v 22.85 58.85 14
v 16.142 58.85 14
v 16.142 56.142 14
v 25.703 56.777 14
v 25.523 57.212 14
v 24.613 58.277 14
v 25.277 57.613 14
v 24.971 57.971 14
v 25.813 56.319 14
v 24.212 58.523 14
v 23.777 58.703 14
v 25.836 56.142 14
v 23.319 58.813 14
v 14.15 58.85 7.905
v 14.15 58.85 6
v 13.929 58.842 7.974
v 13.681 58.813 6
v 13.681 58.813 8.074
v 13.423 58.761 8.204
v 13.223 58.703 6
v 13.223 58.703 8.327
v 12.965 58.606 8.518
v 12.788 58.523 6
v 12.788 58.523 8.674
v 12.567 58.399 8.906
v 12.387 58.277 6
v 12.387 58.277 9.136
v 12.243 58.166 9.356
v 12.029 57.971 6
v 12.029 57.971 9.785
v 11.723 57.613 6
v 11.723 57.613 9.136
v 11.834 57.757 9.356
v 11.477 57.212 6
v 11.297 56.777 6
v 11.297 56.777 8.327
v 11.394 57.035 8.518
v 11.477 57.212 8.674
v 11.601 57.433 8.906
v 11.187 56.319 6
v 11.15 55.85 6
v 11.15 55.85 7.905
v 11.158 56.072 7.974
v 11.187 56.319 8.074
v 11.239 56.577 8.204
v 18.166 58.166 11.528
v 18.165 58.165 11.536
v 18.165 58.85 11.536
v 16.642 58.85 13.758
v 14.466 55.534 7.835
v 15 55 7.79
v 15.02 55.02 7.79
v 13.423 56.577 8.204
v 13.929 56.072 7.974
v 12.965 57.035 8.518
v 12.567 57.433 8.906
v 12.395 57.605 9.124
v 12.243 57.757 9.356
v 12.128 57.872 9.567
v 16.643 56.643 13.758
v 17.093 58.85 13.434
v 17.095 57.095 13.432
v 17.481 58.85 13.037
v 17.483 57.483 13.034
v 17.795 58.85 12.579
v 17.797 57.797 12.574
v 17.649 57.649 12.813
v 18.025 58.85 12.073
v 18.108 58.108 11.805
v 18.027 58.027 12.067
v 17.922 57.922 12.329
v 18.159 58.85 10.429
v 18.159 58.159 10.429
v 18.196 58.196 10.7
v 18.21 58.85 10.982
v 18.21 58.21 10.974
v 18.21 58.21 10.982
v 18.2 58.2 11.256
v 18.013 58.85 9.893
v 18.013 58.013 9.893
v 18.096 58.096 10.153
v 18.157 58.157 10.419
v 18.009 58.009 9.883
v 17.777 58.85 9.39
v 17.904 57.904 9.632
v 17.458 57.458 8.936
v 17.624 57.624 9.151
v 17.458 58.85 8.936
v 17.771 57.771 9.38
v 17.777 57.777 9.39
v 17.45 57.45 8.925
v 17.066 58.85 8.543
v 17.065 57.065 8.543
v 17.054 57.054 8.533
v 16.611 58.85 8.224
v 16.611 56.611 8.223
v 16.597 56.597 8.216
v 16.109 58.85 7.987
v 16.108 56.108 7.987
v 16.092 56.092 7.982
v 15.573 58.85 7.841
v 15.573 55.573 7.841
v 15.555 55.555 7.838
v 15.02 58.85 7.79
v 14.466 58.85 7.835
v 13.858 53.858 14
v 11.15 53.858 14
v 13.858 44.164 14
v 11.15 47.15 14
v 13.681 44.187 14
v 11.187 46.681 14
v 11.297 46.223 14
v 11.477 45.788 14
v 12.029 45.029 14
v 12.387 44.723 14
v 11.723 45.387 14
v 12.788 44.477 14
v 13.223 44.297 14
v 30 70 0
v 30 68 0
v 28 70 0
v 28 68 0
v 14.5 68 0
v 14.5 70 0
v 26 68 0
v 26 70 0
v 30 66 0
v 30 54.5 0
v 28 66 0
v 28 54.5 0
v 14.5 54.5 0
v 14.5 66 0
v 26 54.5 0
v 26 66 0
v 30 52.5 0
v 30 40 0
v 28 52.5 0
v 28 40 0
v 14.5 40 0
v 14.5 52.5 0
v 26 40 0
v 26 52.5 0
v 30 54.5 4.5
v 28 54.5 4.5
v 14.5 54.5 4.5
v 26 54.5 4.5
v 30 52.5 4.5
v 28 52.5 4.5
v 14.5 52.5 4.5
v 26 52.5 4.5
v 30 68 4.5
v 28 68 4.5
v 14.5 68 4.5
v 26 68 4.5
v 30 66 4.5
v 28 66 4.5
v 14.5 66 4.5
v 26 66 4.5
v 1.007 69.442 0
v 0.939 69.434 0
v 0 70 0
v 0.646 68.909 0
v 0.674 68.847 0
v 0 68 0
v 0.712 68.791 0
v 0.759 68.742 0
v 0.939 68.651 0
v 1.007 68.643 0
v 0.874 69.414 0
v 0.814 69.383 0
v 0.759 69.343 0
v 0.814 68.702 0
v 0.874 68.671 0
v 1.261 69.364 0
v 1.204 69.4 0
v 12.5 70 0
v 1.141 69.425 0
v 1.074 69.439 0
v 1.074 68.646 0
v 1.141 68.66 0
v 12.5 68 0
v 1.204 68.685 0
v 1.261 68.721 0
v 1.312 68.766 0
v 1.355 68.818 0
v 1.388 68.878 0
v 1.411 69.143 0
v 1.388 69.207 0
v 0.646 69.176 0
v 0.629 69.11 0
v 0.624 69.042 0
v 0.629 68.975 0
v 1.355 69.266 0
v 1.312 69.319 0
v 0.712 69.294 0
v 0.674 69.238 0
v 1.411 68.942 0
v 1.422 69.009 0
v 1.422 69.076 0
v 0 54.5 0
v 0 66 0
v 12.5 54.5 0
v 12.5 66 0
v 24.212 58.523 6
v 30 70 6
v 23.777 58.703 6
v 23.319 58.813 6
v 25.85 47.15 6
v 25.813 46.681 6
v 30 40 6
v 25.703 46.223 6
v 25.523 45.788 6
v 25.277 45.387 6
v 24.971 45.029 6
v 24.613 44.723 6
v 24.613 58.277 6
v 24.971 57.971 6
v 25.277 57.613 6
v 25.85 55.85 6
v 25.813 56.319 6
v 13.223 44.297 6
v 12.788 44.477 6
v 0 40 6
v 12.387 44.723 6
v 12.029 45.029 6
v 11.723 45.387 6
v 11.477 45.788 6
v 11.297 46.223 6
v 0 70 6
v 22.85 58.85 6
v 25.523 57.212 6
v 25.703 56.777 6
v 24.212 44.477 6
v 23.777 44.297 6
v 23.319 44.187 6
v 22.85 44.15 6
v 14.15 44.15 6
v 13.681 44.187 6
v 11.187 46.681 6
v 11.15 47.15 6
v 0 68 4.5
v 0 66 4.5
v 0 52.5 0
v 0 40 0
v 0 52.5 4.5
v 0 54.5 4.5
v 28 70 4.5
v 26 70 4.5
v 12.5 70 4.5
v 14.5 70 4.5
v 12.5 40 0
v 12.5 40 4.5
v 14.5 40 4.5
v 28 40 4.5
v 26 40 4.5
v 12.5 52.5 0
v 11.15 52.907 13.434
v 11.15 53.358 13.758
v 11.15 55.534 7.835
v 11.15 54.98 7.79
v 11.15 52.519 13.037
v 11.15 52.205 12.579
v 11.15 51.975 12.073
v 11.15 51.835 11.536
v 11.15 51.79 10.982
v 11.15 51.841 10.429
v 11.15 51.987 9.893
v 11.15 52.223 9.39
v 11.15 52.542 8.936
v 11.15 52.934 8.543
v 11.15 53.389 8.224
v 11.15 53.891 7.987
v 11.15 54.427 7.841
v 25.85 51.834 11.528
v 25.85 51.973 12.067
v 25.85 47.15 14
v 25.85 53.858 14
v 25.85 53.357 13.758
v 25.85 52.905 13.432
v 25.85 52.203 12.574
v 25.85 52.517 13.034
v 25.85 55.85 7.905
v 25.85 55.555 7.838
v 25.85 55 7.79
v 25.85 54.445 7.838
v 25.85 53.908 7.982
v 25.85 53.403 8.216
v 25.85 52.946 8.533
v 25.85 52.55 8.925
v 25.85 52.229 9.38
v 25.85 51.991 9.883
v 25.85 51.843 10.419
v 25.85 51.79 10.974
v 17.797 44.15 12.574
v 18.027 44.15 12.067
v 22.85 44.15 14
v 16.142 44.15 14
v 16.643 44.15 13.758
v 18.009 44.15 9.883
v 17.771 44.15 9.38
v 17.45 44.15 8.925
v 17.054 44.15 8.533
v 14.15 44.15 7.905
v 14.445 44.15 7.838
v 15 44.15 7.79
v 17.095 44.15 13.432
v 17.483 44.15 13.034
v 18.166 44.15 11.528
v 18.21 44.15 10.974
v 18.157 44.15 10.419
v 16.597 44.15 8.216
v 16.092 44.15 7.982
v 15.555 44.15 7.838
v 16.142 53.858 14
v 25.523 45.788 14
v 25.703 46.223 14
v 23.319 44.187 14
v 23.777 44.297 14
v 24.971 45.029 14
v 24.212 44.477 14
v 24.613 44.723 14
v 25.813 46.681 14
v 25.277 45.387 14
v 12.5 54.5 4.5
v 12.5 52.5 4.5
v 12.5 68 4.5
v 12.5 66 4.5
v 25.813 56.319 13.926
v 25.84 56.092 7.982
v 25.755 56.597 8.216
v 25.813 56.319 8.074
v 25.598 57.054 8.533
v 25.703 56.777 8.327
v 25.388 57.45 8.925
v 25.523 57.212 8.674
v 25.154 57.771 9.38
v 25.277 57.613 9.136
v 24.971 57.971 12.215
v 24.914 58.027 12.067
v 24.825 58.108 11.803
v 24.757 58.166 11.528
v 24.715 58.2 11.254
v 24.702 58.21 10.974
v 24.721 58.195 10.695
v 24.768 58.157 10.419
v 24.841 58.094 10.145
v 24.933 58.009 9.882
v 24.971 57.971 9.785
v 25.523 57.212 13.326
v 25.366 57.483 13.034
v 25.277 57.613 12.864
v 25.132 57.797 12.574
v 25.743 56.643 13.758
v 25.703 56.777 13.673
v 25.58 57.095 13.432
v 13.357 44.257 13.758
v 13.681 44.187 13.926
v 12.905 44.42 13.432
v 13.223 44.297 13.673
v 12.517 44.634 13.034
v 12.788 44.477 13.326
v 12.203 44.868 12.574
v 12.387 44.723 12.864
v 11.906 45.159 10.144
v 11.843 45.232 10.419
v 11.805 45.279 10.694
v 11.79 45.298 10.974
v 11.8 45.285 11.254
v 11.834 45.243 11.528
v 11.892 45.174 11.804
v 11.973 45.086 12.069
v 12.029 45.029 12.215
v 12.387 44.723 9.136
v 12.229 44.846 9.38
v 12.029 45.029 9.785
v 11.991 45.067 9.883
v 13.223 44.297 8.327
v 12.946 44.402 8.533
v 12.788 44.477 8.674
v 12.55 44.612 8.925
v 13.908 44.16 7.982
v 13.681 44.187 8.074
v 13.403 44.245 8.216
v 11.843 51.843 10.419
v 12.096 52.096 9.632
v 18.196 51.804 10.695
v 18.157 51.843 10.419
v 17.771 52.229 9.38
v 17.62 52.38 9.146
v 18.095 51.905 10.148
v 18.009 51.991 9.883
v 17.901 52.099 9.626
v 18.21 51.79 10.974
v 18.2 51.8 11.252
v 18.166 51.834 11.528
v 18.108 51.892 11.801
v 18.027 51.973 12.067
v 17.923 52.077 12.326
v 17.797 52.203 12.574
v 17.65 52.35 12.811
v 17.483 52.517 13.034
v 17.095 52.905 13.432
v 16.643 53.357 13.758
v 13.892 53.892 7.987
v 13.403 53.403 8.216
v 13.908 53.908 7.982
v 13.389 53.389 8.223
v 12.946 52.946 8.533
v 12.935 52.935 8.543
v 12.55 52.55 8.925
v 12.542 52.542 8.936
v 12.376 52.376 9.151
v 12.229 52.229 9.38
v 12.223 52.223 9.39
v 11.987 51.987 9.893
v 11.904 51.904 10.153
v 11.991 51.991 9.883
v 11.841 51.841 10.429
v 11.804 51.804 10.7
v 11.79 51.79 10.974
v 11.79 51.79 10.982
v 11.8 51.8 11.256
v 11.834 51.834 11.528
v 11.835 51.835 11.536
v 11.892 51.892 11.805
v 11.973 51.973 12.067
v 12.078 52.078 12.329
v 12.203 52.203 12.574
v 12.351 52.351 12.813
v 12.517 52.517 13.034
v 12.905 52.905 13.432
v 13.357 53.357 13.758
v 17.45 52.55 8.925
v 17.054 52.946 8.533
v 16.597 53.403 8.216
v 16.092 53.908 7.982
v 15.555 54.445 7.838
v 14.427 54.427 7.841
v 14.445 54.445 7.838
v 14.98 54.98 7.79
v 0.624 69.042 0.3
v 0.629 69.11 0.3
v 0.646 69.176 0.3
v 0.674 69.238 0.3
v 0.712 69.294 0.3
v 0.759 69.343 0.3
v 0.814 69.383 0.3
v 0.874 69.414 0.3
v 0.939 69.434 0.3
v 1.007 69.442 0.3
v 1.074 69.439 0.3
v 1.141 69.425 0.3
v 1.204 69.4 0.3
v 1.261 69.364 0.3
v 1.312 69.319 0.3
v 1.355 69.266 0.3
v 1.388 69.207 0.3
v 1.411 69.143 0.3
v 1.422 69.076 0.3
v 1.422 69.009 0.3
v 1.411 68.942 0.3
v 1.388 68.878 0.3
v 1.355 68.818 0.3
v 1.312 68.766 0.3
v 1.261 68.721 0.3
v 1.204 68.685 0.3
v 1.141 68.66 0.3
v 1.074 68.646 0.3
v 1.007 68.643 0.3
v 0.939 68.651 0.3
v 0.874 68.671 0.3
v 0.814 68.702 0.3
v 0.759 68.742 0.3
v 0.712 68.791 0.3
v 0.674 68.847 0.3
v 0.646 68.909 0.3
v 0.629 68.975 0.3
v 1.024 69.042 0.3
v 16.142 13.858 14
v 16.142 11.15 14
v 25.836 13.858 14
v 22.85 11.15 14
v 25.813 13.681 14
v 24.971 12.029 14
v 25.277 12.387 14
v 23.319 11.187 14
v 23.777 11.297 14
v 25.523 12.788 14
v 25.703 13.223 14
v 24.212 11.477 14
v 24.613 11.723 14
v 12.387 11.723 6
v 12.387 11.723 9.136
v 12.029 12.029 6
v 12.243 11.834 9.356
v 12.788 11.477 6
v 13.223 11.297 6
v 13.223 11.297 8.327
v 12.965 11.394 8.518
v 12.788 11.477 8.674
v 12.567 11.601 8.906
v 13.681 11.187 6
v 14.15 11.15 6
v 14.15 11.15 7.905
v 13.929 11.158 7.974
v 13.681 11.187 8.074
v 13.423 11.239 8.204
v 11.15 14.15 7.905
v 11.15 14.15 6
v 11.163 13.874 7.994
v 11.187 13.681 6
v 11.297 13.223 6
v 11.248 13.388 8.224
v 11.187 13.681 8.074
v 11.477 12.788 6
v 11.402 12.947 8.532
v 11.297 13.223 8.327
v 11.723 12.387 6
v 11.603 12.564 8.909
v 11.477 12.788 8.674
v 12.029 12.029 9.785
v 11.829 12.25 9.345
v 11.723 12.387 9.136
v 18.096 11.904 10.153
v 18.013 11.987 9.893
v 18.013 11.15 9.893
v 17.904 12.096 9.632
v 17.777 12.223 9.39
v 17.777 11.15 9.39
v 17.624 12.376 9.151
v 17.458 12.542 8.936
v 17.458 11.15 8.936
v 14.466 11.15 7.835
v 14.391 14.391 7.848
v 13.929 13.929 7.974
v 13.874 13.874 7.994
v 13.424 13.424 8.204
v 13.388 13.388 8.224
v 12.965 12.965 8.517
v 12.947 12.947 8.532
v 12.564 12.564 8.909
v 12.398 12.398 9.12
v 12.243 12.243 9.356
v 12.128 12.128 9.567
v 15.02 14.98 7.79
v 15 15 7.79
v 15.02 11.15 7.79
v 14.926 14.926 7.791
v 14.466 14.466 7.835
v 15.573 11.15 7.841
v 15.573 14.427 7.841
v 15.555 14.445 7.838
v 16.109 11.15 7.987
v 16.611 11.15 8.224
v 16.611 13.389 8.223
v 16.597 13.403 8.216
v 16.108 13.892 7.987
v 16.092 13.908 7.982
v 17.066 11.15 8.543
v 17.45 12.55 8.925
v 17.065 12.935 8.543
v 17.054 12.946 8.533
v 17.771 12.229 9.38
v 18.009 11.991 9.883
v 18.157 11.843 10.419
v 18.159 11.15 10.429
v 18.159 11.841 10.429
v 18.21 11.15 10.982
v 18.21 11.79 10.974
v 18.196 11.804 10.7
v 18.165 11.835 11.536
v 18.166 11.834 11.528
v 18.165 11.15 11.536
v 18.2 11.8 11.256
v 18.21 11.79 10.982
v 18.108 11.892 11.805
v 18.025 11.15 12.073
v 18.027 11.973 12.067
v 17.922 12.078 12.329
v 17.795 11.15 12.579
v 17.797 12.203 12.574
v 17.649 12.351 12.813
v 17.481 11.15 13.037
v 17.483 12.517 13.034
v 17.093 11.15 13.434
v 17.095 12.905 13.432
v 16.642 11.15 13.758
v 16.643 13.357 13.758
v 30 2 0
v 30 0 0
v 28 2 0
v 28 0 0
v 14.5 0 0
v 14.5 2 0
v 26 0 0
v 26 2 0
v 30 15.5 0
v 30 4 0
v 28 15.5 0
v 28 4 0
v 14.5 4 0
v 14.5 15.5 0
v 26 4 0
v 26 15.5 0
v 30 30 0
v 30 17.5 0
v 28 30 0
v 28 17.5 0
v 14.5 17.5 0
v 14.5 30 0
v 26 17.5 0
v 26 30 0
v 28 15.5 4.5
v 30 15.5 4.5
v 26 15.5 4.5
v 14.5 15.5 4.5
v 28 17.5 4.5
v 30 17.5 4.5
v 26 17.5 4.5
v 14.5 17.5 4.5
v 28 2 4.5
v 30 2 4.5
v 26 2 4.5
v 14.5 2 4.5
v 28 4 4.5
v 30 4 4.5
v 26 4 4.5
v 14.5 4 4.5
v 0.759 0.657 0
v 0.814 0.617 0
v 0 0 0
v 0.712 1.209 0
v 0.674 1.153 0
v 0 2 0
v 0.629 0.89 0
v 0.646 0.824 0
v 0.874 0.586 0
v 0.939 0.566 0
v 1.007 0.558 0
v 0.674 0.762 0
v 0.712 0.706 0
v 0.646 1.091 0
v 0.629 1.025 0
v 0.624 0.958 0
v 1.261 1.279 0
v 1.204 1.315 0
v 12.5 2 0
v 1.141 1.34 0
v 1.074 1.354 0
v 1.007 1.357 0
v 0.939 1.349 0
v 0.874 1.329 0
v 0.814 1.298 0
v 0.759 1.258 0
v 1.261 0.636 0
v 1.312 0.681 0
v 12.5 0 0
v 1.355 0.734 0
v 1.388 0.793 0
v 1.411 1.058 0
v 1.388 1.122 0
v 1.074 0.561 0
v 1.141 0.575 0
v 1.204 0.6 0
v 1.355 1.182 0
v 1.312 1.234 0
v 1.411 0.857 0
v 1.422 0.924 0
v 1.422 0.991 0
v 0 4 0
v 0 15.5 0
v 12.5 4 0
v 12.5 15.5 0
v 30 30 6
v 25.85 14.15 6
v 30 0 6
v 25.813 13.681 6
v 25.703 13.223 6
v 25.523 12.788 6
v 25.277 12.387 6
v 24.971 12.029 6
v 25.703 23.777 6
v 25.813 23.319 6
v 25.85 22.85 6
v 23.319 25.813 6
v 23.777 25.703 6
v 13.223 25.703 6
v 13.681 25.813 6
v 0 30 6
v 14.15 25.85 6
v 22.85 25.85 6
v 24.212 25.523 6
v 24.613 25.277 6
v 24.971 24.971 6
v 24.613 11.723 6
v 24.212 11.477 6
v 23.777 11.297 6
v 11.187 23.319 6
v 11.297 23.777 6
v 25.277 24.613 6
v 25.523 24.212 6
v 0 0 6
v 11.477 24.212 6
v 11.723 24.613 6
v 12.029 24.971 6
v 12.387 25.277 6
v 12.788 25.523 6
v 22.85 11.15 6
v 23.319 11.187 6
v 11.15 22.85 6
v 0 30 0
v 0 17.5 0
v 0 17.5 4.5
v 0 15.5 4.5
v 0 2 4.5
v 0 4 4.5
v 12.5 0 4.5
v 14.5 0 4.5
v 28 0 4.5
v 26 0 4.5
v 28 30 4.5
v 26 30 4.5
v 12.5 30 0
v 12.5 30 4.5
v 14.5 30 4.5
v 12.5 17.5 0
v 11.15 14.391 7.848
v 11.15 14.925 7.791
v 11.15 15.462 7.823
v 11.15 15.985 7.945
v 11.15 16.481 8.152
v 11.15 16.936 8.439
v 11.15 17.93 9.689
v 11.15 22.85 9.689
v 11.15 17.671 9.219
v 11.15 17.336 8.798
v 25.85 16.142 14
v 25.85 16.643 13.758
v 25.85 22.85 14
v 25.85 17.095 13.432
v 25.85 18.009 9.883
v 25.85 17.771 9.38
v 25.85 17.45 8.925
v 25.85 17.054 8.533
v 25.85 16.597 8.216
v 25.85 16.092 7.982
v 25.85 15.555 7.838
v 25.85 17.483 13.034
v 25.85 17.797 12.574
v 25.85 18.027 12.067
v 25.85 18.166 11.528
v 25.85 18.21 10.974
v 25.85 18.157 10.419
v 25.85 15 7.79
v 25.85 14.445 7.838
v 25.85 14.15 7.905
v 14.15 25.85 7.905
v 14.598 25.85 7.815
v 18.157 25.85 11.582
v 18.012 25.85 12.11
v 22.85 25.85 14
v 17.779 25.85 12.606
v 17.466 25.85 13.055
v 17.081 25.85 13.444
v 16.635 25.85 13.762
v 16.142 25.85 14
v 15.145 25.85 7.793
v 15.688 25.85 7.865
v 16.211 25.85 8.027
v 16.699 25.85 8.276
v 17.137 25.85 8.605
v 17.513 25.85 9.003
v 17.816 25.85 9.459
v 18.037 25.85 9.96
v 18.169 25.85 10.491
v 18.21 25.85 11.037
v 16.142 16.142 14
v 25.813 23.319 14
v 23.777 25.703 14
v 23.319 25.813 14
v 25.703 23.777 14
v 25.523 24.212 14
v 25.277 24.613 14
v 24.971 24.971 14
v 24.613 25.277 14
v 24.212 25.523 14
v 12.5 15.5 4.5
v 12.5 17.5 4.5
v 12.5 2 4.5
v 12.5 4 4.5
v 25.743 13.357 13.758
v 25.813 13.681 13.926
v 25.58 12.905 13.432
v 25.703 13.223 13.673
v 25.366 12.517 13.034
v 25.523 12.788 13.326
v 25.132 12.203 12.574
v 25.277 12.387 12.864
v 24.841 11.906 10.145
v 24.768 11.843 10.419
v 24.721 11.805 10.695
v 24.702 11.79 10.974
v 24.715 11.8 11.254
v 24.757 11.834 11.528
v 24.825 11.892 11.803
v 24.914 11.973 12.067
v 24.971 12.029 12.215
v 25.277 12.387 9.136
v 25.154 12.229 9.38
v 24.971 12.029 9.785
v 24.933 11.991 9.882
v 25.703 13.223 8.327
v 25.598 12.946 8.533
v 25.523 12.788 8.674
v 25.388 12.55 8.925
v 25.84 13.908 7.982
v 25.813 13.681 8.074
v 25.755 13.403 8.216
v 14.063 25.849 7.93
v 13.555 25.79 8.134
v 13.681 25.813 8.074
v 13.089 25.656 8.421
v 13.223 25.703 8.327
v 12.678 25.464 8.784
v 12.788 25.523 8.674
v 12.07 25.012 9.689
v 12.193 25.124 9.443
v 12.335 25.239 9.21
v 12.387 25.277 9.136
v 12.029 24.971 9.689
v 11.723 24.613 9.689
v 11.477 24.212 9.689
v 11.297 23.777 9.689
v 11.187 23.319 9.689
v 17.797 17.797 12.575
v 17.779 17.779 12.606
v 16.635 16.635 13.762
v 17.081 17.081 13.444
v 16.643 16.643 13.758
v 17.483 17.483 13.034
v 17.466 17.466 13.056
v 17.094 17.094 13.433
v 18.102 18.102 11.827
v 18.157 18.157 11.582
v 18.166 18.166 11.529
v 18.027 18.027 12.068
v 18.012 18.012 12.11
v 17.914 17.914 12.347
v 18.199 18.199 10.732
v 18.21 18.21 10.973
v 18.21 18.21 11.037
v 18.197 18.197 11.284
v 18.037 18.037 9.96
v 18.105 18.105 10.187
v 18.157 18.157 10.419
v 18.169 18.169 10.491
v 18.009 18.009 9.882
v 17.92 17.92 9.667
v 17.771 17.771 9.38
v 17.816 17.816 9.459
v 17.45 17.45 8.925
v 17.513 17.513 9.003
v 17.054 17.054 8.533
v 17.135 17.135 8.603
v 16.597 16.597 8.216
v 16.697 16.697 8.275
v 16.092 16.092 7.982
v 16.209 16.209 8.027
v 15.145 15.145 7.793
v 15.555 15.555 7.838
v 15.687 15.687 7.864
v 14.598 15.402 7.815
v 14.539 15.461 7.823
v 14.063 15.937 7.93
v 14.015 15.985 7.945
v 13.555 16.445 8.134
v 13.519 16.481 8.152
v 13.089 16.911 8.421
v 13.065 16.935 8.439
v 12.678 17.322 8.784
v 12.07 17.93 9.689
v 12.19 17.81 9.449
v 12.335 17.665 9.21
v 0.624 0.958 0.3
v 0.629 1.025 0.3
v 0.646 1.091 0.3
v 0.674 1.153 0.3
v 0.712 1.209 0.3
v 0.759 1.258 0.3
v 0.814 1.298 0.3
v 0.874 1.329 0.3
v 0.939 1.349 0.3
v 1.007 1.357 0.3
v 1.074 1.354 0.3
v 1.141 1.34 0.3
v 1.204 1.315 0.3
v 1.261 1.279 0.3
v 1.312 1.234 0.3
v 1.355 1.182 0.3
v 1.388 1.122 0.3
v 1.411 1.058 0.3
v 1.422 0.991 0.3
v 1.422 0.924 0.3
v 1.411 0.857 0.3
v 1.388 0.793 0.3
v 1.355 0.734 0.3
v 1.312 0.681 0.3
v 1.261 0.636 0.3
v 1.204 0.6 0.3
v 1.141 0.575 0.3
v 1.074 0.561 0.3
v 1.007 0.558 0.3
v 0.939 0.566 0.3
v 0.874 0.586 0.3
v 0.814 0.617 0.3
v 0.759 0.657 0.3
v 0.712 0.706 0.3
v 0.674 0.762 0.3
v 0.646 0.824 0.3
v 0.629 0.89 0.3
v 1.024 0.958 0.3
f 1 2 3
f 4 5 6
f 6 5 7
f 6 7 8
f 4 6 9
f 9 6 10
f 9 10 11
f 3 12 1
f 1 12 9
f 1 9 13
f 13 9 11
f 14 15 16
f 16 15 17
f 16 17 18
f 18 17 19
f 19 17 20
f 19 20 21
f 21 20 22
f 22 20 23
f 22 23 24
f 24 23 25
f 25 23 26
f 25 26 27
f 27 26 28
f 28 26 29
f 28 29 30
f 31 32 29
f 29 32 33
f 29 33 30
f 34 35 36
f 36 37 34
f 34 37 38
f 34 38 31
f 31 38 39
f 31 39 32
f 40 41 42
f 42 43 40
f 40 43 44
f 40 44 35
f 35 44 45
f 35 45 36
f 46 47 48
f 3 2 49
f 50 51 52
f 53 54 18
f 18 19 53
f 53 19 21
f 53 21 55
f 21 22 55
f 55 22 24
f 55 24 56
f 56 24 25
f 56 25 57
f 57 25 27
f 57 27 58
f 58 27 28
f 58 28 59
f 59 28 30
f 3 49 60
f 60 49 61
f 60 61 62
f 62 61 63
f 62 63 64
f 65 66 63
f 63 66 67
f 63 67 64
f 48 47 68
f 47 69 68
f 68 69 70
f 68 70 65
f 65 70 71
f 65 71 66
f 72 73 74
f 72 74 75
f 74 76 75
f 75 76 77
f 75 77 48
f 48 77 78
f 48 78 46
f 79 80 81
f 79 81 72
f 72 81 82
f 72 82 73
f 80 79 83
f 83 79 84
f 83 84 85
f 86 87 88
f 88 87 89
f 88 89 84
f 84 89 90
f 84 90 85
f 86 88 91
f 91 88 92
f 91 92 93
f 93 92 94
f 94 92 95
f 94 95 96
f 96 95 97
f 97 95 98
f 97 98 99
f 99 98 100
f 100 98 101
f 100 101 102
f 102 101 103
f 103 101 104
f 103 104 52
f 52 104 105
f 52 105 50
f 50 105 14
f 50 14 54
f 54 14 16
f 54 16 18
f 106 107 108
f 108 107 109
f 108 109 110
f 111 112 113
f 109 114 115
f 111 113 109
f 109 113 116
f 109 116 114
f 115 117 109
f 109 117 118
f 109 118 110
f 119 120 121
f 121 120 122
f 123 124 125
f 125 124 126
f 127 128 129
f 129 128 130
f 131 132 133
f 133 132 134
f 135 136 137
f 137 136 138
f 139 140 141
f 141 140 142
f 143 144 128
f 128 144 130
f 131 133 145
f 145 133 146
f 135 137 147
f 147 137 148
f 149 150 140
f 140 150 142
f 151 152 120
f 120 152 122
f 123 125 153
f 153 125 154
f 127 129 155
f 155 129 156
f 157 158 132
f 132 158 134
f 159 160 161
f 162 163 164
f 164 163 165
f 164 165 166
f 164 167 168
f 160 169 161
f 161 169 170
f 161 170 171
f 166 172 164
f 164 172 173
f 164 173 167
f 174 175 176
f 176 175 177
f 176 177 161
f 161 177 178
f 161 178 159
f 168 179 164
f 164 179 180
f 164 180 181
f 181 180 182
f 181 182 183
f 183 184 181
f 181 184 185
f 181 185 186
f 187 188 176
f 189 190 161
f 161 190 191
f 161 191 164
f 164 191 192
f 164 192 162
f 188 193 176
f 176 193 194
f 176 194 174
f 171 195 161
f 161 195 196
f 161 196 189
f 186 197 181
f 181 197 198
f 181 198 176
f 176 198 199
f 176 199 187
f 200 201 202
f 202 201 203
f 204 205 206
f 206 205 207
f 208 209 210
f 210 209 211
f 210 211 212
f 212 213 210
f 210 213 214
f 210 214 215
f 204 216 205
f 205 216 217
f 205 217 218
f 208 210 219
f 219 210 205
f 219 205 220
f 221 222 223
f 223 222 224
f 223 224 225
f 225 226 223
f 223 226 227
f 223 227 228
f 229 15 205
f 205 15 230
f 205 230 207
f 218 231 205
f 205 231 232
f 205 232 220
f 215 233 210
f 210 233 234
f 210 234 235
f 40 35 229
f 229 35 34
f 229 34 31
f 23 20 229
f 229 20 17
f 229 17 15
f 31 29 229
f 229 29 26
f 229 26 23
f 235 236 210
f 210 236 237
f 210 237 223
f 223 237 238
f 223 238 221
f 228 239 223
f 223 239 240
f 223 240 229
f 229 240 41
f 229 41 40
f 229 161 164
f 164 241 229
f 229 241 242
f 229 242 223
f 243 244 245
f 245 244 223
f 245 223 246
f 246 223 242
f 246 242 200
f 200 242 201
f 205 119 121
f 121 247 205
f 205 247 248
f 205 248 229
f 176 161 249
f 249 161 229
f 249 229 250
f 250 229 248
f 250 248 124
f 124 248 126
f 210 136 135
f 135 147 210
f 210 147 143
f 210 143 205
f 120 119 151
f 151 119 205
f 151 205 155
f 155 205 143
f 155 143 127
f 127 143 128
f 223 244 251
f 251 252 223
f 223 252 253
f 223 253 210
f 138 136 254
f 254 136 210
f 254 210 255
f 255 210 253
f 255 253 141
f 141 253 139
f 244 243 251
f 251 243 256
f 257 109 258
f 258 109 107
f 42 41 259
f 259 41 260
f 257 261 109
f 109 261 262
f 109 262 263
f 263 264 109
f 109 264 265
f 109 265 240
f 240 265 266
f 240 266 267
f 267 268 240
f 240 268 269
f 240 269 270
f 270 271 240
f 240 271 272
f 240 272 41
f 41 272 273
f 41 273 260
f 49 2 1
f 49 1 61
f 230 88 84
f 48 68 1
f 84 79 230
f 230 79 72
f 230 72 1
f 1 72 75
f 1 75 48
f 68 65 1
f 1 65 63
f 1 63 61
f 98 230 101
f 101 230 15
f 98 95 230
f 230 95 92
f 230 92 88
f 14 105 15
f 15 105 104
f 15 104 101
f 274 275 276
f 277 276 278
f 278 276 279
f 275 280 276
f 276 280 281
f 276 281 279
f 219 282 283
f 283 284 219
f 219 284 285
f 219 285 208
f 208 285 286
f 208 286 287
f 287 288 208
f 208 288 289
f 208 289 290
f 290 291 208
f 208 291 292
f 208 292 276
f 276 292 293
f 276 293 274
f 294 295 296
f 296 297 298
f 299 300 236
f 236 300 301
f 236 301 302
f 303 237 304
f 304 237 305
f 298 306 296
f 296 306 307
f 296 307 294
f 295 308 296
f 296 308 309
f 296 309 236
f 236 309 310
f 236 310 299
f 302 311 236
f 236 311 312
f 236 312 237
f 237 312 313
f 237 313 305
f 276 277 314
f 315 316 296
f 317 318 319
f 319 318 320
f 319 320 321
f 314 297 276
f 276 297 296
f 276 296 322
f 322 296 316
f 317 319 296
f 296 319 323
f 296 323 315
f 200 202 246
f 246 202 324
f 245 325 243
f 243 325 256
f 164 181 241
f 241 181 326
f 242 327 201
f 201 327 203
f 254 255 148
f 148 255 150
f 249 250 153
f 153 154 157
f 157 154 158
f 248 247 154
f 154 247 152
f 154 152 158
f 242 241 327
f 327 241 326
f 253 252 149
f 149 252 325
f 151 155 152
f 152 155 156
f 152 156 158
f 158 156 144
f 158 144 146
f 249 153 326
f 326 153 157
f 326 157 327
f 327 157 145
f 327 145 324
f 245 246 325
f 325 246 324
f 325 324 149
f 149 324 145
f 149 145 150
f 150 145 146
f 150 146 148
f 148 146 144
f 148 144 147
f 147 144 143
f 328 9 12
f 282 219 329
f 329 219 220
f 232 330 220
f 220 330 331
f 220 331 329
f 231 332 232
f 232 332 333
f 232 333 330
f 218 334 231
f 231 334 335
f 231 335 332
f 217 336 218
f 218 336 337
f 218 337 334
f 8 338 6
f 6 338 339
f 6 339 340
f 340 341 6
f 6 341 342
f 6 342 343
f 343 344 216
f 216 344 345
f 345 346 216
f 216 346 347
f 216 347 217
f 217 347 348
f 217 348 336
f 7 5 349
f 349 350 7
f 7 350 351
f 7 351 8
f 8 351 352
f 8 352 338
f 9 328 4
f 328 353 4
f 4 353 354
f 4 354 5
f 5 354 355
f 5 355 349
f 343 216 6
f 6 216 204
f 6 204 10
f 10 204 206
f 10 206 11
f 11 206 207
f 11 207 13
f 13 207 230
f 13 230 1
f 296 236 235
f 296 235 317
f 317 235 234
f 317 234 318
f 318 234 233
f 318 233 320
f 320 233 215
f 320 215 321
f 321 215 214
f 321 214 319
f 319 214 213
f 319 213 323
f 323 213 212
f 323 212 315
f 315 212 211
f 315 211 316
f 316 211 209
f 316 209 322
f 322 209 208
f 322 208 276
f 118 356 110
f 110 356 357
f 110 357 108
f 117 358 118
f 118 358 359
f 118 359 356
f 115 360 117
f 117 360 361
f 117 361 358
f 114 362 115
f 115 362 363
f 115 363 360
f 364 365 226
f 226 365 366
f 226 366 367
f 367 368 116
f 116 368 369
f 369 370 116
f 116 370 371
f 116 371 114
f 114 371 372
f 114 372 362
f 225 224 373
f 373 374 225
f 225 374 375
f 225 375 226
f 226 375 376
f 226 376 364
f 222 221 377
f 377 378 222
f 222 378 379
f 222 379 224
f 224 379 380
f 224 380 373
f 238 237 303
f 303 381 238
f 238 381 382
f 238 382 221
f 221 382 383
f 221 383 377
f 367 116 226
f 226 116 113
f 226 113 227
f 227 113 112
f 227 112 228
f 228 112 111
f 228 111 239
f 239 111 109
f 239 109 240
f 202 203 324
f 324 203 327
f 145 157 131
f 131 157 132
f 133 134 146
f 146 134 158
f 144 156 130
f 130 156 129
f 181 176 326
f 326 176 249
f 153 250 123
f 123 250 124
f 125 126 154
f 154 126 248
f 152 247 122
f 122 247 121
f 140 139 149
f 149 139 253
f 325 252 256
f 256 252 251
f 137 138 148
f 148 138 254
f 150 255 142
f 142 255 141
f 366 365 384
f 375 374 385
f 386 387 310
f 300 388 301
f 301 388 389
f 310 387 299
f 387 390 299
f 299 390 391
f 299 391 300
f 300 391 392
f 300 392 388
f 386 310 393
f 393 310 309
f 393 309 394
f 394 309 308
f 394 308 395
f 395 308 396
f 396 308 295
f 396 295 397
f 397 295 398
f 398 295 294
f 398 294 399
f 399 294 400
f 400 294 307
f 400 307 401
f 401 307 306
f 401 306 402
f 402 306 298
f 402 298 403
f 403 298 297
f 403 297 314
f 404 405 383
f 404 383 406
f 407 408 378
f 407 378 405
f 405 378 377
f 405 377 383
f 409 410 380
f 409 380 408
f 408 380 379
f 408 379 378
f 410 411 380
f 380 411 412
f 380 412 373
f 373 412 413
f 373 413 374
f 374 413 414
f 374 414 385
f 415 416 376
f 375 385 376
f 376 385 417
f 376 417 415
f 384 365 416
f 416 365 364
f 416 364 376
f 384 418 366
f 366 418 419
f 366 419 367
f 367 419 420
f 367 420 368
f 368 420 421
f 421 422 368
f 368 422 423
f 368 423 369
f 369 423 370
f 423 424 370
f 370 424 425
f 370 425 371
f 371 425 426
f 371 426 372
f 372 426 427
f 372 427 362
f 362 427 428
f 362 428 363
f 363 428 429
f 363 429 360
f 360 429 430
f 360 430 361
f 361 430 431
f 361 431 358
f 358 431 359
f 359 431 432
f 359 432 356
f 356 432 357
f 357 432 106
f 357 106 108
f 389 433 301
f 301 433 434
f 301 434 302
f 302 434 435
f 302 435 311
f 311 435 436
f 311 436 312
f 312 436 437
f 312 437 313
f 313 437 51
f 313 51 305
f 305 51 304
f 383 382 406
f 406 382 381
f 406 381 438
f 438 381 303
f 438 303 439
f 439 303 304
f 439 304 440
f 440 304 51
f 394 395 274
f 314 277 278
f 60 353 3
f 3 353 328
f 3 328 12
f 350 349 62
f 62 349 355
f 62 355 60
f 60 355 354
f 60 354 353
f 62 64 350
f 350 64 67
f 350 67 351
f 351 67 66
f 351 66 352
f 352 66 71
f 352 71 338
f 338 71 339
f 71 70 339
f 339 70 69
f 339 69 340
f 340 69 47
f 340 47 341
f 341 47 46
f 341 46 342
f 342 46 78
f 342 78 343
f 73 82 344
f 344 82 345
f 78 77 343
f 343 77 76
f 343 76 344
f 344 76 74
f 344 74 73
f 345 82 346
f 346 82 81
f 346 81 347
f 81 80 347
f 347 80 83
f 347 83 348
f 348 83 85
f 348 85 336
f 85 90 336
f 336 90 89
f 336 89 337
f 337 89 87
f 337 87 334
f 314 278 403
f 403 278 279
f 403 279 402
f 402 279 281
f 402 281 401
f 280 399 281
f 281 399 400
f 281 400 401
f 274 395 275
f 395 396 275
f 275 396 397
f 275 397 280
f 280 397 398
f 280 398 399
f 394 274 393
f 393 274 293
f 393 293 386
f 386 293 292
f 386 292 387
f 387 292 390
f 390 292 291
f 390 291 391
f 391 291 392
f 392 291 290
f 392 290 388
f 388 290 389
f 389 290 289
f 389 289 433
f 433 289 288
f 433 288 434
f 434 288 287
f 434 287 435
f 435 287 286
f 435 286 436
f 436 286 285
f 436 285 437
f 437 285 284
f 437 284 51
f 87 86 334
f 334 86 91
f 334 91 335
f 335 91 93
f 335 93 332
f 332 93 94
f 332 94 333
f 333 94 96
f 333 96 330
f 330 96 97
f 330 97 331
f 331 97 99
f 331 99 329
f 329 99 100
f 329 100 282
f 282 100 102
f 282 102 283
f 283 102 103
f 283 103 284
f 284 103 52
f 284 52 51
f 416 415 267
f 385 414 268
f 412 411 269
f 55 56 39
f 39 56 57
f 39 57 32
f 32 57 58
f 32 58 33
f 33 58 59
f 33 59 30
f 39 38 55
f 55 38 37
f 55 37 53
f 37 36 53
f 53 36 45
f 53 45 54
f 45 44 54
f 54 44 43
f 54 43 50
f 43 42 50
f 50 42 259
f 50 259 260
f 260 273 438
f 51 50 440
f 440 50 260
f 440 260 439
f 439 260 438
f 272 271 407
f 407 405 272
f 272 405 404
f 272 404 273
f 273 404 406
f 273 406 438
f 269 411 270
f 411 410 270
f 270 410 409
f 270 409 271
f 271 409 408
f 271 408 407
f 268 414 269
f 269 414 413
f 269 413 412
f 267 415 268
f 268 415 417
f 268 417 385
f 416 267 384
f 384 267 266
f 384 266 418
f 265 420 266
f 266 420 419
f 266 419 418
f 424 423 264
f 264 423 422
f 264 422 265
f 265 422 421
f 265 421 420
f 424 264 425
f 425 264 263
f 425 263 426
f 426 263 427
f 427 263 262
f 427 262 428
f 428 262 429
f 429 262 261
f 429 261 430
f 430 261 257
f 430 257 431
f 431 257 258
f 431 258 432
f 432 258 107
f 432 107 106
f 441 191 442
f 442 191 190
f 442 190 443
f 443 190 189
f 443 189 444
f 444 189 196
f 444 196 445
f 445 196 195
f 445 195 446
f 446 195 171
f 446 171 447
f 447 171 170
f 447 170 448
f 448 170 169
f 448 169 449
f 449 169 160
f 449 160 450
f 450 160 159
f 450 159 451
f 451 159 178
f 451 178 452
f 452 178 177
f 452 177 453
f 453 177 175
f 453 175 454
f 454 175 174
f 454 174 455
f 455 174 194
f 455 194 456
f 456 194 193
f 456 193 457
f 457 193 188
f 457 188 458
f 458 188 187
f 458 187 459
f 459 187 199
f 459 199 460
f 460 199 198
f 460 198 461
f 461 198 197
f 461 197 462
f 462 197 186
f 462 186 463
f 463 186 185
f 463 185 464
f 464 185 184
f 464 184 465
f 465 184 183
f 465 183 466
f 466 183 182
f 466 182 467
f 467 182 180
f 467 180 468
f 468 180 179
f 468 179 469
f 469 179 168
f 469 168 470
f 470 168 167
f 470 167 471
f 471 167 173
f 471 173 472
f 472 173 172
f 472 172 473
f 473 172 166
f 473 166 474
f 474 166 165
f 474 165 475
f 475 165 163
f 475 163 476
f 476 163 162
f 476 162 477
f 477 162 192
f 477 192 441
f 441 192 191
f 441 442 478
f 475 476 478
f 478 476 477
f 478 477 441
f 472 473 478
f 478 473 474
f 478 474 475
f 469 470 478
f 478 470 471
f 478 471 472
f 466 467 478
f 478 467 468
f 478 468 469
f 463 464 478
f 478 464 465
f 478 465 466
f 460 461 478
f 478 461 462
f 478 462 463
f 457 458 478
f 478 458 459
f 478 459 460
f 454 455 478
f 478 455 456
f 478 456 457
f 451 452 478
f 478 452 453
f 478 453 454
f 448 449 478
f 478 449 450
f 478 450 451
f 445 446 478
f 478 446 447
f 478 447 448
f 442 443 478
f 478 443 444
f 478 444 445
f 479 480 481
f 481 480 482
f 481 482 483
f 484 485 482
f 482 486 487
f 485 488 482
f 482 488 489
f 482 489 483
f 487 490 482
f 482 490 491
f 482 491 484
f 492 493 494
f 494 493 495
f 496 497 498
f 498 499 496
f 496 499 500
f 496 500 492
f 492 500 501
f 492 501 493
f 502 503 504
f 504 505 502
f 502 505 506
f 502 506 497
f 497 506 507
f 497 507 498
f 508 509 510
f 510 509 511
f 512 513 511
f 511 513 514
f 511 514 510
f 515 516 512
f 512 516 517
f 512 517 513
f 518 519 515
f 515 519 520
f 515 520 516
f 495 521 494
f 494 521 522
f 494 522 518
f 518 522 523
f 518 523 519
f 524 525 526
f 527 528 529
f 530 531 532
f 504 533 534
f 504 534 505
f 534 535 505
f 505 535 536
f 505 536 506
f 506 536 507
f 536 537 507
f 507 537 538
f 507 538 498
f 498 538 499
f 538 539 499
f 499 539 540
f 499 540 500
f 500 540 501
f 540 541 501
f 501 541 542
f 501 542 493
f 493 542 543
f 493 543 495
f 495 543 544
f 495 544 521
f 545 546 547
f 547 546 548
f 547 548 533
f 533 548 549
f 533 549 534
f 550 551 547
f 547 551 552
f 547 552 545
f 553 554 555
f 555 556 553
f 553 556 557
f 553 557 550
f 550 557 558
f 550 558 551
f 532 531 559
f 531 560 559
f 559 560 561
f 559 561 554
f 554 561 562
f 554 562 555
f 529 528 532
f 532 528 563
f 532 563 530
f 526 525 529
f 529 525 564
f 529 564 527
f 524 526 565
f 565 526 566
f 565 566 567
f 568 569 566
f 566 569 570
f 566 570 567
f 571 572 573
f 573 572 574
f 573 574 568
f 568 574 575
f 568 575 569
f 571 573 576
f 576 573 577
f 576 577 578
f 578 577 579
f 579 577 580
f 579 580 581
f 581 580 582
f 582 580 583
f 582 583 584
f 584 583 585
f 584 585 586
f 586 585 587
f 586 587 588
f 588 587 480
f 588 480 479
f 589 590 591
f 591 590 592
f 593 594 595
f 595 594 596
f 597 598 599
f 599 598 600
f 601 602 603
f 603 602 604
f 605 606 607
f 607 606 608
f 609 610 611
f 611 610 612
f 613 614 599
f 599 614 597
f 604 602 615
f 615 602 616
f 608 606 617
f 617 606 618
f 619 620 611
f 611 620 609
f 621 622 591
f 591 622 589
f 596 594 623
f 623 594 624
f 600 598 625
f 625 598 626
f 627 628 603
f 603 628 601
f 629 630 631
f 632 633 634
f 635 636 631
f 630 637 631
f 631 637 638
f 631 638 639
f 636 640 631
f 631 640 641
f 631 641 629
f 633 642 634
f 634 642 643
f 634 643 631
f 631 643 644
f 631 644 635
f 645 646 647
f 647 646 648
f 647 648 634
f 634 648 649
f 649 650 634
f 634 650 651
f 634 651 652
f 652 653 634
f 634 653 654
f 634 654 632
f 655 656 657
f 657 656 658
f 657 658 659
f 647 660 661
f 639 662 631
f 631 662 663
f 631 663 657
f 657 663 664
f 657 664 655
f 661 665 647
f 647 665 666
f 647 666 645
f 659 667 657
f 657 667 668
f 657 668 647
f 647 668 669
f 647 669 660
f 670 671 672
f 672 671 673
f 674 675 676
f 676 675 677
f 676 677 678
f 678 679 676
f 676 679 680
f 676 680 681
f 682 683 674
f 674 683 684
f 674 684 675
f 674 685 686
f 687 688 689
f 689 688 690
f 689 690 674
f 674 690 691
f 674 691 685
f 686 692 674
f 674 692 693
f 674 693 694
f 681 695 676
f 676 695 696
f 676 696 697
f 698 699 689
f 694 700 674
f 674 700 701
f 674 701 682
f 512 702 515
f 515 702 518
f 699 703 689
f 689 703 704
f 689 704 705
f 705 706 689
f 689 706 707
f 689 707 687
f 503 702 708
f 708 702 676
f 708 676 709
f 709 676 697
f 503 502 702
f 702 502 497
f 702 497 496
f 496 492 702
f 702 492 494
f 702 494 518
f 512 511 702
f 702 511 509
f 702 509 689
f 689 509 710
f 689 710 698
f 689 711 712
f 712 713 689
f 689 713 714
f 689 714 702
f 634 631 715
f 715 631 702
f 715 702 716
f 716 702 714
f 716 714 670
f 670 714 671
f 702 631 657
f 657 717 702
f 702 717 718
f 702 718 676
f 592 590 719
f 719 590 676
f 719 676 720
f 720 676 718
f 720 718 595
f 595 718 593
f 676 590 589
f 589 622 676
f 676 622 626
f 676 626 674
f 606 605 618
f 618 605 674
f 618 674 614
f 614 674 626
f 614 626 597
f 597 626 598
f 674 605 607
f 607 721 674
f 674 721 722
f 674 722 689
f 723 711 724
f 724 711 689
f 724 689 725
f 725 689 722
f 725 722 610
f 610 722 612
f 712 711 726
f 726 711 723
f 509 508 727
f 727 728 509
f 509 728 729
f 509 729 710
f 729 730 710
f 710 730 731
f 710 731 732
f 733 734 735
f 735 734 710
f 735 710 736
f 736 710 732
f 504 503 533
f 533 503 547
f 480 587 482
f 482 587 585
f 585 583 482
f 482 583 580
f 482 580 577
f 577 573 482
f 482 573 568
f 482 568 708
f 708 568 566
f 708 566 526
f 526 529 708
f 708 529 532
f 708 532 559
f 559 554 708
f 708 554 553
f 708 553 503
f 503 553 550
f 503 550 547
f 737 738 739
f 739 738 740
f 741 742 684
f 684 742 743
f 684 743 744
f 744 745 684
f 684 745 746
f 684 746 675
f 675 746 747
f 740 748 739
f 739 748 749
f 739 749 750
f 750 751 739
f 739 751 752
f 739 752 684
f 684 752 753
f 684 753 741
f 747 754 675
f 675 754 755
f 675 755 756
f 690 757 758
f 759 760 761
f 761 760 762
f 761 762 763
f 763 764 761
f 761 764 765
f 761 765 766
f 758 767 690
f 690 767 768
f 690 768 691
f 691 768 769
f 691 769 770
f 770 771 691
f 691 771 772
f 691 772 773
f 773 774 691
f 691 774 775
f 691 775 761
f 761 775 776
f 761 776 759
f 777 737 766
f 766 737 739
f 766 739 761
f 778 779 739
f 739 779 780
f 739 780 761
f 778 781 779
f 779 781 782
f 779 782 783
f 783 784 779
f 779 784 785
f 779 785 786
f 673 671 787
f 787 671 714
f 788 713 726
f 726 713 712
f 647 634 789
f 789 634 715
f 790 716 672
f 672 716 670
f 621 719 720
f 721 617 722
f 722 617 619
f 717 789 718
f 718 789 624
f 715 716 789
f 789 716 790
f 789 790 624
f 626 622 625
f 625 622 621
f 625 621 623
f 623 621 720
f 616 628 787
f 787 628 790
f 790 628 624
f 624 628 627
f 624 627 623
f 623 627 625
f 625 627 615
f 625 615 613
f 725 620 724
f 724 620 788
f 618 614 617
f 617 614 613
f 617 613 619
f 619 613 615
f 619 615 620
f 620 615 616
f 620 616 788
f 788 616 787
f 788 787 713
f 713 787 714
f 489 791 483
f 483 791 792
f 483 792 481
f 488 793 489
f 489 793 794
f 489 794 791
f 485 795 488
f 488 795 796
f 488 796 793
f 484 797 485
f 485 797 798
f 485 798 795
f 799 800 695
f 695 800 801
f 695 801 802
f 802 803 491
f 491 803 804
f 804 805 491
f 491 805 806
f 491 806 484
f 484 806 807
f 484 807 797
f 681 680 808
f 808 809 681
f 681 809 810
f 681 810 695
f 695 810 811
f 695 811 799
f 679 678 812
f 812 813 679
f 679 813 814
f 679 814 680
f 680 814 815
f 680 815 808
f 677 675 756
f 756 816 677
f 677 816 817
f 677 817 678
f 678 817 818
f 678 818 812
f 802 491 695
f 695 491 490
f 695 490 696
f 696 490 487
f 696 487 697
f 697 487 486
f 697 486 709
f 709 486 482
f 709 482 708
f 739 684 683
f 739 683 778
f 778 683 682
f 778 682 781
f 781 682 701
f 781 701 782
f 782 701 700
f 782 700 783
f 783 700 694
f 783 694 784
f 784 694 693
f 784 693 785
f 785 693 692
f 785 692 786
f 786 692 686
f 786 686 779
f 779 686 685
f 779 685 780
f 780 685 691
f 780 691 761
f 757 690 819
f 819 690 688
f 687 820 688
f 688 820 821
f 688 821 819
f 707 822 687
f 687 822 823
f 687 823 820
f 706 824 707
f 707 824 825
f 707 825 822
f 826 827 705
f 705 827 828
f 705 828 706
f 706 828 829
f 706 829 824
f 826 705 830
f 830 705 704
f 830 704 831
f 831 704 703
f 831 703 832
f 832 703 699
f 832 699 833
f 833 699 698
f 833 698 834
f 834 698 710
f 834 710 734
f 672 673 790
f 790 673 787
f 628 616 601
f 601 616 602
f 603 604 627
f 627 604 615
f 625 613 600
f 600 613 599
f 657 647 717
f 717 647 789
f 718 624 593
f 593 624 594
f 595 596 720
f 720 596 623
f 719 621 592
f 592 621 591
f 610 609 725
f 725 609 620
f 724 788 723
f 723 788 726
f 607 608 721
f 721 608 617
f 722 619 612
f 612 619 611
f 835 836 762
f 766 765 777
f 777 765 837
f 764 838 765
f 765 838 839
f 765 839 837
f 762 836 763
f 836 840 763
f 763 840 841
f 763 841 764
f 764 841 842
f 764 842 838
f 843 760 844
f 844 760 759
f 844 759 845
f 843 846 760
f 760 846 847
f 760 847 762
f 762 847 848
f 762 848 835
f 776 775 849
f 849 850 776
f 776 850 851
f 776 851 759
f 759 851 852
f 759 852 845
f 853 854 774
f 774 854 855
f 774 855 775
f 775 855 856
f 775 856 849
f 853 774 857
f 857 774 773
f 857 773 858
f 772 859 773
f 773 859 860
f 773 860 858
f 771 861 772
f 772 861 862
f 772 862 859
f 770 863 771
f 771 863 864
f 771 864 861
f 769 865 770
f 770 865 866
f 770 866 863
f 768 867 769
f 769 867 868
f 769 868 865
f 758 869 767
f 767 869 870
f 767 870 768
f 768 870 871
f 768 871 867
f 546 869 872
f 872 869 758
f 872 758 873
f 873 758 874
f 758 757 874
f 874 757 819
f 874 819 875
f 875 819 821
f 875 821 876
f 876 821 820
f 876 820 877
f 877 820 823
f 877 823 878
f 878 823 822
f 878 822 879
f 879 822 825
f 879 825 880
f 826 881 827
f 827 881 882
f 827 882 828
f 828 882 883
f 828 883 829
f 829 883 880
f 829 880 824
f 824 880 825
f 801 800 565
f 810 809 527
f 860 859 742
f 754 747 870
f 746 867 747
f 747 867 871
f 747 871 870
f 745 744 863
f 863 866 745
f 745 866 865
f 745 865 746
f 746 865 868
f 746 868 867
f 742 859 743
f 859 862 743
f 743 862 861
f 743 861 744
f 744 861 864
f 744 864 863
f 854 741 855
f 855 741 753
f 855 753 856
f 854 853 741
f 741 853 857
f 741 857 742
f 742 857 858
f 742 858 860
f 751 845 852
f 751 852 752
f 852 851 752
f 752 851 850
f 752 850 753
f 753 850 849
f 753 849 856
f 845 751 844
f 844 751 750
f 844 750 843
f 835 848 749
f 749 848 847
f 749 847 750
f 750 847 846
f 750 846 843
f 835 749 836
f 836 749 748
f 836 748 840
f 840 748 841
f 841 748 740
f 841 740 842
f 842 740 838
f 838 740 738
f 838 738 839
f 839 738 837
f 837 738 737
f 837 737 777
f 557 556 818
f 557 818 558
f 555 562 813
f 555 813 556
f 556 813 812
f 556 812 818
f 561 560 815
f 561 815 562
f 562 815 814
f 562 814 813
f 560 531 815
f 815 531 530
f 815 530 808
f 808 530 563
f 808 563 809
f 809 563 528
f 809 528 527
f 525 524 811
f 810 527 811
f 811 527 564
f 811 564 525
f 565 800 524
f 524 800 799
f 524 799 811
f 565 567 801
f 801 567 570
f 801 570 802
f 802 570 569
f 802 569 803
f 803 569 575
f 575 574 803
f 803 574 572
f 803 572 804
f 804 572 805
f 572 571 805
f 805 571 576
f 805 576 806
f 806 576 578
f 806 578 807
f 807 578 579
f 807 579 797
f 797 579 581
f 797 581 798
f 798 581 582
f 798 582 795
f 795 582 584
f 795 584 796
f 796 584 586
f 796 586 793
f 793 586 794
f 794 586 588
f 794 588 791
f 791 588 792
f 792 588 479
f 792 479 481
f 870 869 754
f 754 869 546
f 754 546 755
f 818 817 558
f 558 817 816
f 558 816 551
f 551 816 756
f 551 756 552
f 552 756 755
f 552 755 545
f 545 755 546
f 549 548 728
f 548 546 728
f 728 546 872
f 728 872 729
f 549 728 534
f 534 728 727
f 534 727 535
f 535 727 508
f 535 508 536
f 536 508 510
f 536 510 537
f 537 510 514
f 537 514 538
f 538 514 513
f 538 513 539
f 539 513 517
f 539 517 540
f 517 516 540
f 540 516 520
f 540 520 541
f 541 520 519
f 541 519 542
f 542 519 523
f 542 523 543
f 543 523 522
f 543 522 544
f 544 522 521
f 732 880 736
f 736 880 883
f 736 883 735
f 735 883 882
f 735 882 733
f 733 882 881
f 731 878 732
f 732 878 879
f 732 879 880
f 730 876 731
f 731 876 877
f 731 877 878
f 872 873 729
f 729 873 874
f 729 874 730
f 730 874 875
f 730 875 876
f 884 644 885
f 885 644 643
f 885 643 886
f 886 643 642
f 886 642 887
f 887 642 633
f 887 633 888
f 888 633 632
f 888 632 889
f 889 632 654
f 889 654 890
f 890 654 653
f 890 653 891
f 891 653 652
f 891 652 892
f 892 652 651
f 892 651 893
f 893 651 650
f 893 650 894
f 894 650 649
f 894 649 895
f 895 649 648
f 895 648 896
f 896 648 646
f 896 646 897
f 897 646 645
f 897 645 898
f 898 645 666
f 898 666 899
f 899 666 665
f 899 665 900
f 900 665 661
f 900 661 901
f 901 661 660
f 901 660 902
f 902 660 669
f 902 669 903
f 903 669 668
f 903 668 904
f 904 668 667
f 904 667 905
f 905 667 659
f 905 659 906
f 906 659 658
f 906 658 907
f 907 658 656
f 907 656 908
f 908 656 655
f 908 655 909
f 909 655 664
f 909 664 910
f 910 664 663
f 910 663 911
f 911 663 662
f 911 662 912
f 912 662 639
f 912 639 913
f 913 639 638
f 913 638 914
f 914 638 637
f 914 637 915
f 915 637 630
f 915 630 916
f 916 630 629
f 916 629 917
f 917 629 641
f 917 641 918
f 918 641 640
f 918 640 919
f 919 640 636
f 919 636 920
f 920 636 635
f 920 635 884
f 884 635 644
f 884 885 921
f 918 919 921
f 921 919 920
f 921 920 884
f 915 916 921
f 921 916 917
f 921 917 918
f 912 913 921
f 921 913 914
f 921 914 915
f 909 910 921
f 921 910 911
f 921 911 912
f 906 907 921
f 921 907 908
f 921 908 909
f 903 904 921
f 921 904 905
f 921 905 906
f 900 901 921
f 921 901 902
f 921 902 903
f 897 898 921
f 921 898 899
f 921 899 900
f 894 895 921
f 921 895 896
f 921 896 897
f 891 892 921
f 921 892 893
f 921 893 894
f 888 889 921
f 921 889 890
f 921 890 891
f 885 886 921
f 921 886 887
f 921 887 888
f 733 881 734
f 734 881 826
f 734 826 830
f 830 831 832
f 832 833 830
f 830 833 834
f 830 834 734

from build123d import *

# Parameters (mm, degrees)
SKETCH1_W           = 30
SKETCH1_H           = 30
COVER_DEPTH         = 6
SKETCH2_W           = 14.7
SKETCH2_H           = 14.7
PLUG_DEPTH          = 8
SKETCH3_W           = 30
SKETCH3_H           = 2
CUT_EXTRUDE1_DEPTH  = 4.5
FILLET1_R           = 3
SKETCH7_W           = 2
SKETCH7_H           = 30
CUT_EXTRUDE5_DEPTH  = 4.5
CUT_EXTRUDE8_REACH  = 46.677
SKETCH10_R          = 3.21
CUT_EXTRUDE6_REACH  = 46.677
SKETCH8_R           = 3.21
SKETCH11_R          = 0.4
CUT_EXTRUDE9_DEPTH  = 0.3
SKETCH12_W          = 5.786854718
SKETCH12_H          = 13.066730134
CUT_EXTRUDE10_DEPTH = 1.35


with BuildPart() as part:
    # Sketch1 → cover (new body)
    with BuildSketch(Plane.XY):
        with Locations((15, 15)):
            Rectangle(SKETCH1_W, SKETCH1_H)
    extrude(amount=COVER_DEPTH)

    # Sketch2 → plug (add)
    with BuildSketch(Plane.XY.offset(6)):
        with Locations((18.5, 18.5)):
            Rectangle(SKETCH2_W, SKETCH2_H)
    extrude(amount=PLUG_DEPTH)

    # Sketch3 → Cut-Extrude1 (cut)
    with BuildSketch(Plane(origin=(0, 0, 0), x_dir=(-1, 0, 0), z_dir=(0, 0, -1))):
        with Locations((-15, 3)):
            Rectangle(SKETCH3_W, SKETCH3_H)
        with Locations((-15, 16.5)):
            Rectangle(SKETCH3_W, SKETCH3_H)
    extrude(amount=-CUT_EXTRUDE1_DEPTH, mode=Mode.SUBTRACT)

    # Fillet1
    fillet1_edges = [part.edges().sort_by_distance(p)[0] for p in [
        (11.15, 25.85, 10),
        (11.15, 11.15, 10),
        (25.85, 11.15, 10),
        (25.85, 25.85, 10),
    ]]
    fillet(fillet1_edges, radius=FILLET1_R)

    # Sketch7 → Cut-Extrude5 (cut)
    with BuildSketch(Plane(origin=(0, 0, 0), x_dir=(-1, 0, 0), z_dir=(0, 0, -1))):
        with Locations((-27, 15)):
            Rectangle(SKETCH7_W, SKETCH7_H)
        with Locations((-13.5, 15)):
            Rectangle(SKETCH7_W, SKETCH7_H)
    extrude(amount=-CUT_EXTRUDE5_DEPTH, mode=Mode.SUBTRACT)

    # Cut-Extrude8: up to this face of the body (flat: up to its plane)
    cut_extrude8_end = Plane(part.part.faces().sort_by_distance((18.5, 25.85, 10))[0])
    # Sketch10 → Cut-Extrude8 (cut, up to the picked face)
    with BuildSketch(Plane.XZ, mode=Mode.PRIVATE) as cut_extrude8_sk1:
        with Locations((15, 11)):
            Circle(SKETCH10_R)
    cut_extrude8_tool1 = split(extrude(cut_extrude8_sk1.sketch, amount=-CUT_EXTRUDE8_REACH, mode=Mode.PRIVATE), bisect_by=cut_extrude8_end, keep=Keep.BOTH, mode=Mode.PRIVATE)
    add(cut_extrude8_tool1.solids().sort_by(Axis((15, 0, 11), (0, 1, 0)))[0], mode=Mode.SUBTRACT)

    # Cut-Extrude6: up to this face of the body (flat: up to its plane)
    cut_extrude6_end = Plane(part.part.faces().sort_by_distance((11.15, 18.5, 10))[0])
    # Sketch8 → Cut-Extrude6 (cut, up to the picked face)
    with BuildSketch(Plane(origin=(30, 0, 0), x_dir=(0, 0, -1), z_dir=(1, 0, 0)), mode=Mode.PRIVATE) as cut_extrude6_sk1:
        with Locations((-11, 15)):
            Circle(SKETCH8_R)
    cut_extrude6_tool1 = split(extrude(cut_extrude6_sk1.sketch, amount=-CUT_EXTRUDE6_REACH, mode=Mode.PRIVATE), bisect_by=cut_extrude6_end, keep=Keep.BOTH, mode=Mode.PRIVATE)
    add(cut_extrude6_tool1.solids().sort_by(Axis((30, 15, 11), (-1, 0, 0)))[0], mode=Mode.SUBTRACT)


with BuildPart() as cut_extrude6_piece_1:
    # of the separate pieces the step leaves, piece 1, a body of its own (cut_extrude6_pieces)
    add(part.part.solids().sort_by_distance((11.15, 14.15, 6))[0])

    # Sketch11 → Cut-Extrude9 (cut)
    with BuildSketch(Plane(origin=(0, 0, 0), x_dir=(-1, 0, 0), z_dir=(0, 0, -1))):
        with Locations((-1.023534147, 0.957517398)):
            Circle(SKETCH11_R)
    extrude(amount=-CUT_EXTRUDE9_DEPTH, mode=Mode.SUBTRACT)


with BuildPart() as cut_extrude6_piece_2:
    # of the separate pieces the step leaves, piece 2, a body of its own (cut_extrude6_pieces)
    add(part.part.solids().sort_by_distance((11.164241744, 13.858028021, 14))[0])


with BuildPart() as body_2:
    # Mirror3: mirrored copy
    add(cut_extrude6_piece_1.part.mirror(Plane.ZX.offset(35)))


with BuildPart() as cut_extrude6_piece_1_1:
    add(cut_extrude6_piece_1.part)

    # Sketch12 → Cut-Extrude10 (cut)
    with BuildSketch(Plane.ZY.offset(-11.15)):
        with Locations((12.582845038, 21.167796202)):
            Rectangle(SKETCH12_W, SKETCH12_H)
    extrude(amount=-CUT_EXTRUDE10_DEPTH, mode=Mode.SUBTRACT)


with BuildPart() as cut_extrude10_kept_piece:
    # of the separate pieces the step leaves, the one the design keeps (cut_extrude10_pieces_kept)
    add(cut_extrude6_piece_1_1.part.solids().sort_by_distance((11.15, 14.15, 6))[0])


solid = Compound([body_2.part, cut_extrude10_kept_piece.part])
